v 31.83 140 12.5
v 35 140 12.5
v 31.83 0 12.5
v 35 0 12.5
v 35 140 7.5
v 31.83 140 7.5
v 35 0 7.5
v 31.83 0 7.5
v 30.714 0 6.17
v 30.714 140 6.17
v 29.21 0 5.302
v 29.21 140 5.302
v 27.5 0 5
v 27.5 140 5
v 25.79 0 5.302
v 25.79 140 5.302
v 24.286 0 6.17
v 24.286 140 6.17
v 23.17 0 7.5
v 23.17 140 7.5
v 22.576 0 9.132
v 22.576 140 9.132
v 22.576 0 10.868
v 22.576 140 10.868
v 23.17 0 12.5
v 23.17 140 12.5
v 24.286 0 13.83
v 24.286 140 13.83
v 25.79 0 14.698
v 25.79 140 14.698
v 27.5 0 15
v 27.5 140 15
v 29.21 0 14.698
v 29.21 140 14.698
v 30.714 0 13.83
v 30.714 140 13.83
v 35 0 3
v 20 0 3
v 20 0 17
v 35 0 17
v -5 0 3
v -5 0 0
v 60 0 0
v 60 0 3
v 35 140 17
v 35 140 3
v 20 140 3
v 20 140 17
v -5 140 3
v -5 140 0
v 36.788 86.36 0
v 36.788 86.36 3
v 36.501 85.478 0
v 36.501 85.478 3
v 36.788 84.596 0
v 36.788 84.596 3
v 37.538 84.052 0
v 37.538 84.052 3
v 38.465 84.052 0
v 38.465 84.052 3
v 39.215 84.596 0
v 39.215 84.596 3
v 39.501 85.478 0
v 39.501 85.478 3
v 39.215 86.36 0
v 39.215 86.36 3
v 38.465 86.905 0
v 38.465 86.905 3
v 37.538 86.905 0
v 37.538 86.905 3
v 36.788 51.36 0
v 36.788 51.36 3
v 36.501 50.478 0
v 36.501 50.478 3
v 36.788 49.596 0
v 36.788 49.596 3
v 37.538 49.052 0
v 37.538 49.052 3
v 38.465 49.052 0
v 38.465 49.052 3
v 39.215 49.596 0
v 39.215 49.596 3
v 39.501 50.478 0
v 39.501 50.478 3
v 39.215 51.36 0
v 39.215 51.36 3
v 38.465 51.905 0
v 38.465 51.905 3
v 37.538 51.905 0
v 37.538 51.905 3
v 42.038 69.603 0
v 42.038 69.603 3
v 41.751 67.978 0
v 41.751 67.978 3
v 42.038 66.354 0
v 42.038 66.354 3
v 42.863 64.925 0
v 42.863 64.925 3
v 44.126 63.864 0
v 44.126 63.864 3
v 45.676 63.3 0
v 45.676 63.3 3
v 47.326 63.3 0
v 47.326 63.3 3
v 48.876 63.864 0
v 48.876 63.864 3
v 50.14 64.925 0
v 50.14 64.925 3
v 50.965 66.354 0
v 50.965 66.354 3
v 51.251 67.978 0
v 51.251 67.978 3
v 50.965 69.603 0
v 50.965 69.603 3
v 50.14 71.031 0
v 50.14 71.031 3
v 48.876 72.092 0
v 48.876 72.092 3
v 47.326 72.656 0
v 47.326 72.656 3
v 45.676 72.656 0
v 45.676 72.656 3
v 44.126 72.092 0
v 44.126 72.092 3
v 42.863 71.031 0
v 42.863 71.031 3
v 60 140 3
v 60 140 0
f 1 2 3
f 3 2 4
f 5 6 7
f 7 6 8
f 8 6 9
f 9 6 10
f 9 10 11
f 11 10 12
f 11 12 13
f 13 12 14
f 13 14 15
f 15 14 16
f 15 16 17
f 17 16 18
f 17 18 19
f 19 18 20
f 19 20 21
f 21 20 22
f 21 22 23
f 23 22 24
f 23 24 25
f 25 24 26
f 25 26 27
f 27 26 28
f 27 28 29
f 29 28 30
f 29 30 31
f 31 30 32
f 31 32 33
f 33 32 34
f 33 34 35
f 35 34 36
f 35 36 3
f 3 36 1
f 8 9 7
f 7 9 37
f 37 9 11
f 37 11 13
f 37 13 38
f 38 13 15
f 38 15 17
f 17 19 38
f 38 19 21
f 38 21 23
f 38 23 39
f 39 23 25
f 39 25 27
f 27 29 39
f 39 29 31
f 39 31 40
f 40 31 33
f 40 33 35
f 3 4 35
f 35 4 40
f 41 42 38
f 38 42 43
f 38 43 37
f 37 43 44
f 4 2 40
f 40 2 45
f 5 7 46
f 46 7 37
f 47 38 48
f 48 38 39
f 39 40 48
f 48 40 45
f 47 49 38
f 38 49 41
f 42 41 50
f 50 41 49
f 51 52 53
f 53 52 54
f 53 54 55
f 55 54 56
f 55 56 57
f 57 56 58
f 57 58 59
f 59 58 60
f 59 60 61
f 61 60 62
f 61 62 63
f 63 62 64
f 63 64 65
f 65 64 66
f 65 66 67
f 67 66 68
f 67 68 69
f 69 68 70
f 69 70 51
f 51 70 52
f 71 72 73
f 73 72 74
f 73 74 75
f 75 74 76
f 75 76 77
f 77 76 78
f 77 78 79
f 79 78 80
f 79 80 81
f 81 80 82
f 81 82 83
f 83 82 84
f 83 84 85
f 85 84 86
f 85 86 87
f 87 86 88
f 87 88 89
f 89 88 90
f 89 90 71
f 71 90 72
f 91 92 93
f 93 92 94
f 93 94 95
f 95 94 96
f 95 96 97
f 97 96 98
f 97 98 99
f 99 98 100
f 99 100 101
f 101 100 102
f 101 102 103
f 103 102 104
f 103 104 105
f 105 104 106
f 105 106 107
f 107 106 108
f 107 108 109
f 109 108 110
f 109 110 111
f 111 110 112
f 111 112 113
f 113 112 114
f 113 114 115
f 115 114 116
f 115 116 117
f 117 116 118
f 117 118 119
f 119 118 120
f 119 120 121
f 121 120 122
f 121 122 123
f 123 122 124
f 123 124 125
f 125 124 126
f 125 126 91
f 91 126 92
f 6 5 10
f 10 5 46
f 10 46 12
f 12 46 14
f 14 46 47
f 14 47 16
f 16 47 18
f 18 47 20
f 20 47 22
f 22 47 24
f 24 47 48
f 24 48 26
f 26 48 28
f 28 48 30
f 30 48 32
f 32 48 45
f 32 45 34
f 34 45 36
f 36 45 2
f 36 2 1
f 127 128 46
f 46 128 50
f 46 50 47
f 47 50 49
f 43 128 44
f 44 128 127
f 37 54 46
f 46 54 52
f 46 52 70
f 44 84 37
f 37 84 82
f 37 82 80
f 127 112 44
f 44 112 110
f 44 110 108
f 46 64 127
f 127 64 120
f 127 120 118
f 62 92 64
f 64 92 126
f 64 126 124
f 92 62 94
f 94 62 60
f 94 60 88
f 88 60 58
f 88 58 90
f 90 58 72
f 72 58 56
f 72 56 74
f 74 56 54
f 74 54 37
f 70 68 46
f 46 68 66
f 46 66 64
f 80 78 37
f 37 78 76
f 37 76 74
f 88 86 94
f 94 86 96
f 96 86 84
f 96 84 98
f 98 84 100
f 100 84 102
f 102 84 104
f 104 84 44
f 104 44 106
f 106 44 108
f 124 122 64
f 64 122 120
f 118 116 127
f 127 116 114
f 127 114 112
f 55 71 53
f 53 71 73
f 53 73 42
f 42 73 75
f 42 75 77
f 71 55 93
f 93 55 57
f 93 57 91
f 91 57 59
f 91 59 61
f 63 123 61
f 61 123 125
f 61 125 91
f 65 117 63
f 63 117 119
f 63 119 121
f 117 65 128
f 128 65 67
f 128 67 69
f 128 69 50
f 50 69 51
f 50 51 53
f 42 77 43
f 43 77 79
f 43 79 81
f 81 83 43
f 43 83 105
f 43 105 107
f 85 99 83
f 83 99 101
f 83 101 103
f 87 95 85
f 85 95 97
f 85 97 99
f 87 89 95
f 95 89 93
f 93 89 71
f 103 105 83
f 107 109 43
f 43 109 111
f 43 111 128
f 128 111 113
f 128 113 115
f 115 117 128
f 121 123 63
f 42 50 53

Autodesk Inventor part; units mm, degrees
ref_plane "YZ Plane" through (0, 0, 0) normal (1, 0, 0) x (0, 1, 0)
ref_plane "XZ Plane" through (0, 0, 0) normal (0, 1, 0) x (-1, 0, 0)
ref_plane "XY Plane" through (0, 0, 0) normal (0, 0, 1) x (1, 0, 0)
sketch "Sketch1" plane through (0, 0, 0) normal (0, 0, 1) x (1, 0, 0)
  line L0 (0, 0) -> (60, 0)
  line L1 (60, 0) -> (60, 140)
  line L2 (60, 140) -> (0, 140)
  line L3 (0, 140) -> (0, 0)
  dimension "d0" = 60
  dimension "d1" = 140
extrude "Extrusion1" add sketch "Sketch1" along normal blind 3
sketch "Sketch4" plane through (0, 0, 3) normal (0, 0, 1) x (1, 0, 0)
  point P0 (0, 0)
sketch "Sketch5" plane through (0, 0, 3) normal (0, 0, 1) x (1, 0, 0)
  circle A0 centre (38.0013, 85.4781) radius 1.5
  circle A1 centre (38.0013, 50.4781) radius 1.5
  line L0 (60, 0) -> (60, 140) projected
  circle A2 centre (46.5013, 67.9781) radius 4.75
  line L1 (60, 0) -> (60, 140) projected
  line L2 (60, 67.9781) -> (70, 67.9781) construction
  point P0 (0, 0)
  dimension "d11" = 3
extrude "Extrusion4" cut sketch "Sketch5" against normal blind 145
sketch "Sketch6" plane through (0, 0, 0) normal (-1, 0, 0) x (0, 0, 1)
  line L0 (0, 140) -> (0, 0) projected
  line L1 (3, 0) -> (3, 140) projected
  line L2 (0, 0) -> (3, 0)
  line L3 (3, 0) -> (3, 140)
  line L4 (3, 140) -> (0, 140)
  line L5 (0, 140) -> (0, 0)
extrude "Extrusion5" add sketch "Sketch6" along normal blind 5
sketch "Sketch7" plane through (60, 140, 3) normal (0, 1, 0) x (1, 0, 0)
  line L0 (-65, 0) -> (-65, 3) projected
  line L1 (-65, 3) -> (0, 3)
  line L2 (0, 3) -> (0, -17)
  line L3 (0, -17) -> (-65, -17)
  line L4 (-65, -17) -> (-65, 3)
  arc A0 (-28.1699, -4.5) -> (-28.1699, -9.5) centre (-32.5, -7) ccw
  line L5 (-25, -9.5) -> (-25, -4.5)
  line L6 (-40, -4.5) -> (-25, -9.5) construction
  line L7 (-40, -9.5) -> (-25, -4.5) construction
  line L8 (-28.1699, -9.5) -> (-25, -9.5)
  line L9 (-25, -4.5) -> (-28.1699, -4.5)
  point P0 (-60, 3)
  dimension "d18" = 65
  dimension "d19" = 20
sketch "Sketch8" plane through (0, 0, 3) normal (0, 0, 1) x (1, 0, 0)
  line L0 (35, 0) -> (35, 140)
  line L1 (35, 140) -> (20, 140)
  line L2 (20, 140) -> (20, 0)
  line L3 (20, 0) -> (35, 0)
  line L4 (35, 0) -> (20, 140) construction
  line L5 (35, 140) -> (20, 0) construction
  line L6 (60, 0) -> (60, 140) projected
  line L7 (35, 0) -> (175, 0) construction
  point P0 (0, 0)
  point P1 (27.5, 70)
  dimension "d21" = 140
  dimension "d22" = 90
  dimension "d23" = 15
extrude "Extrusion6" add sketch "Sketch8" along normal blind 14
extrude "Extrusion7" cut sketch "Sketch7" against normal blind 140 contours L9 L5 L8 A0
sketch "Sketch9" plane through (0, 0, 3) normal (0, 0, 1) x (1, 0, 0)
  point P0 (0, 0)
properties part number "Rack Base"
